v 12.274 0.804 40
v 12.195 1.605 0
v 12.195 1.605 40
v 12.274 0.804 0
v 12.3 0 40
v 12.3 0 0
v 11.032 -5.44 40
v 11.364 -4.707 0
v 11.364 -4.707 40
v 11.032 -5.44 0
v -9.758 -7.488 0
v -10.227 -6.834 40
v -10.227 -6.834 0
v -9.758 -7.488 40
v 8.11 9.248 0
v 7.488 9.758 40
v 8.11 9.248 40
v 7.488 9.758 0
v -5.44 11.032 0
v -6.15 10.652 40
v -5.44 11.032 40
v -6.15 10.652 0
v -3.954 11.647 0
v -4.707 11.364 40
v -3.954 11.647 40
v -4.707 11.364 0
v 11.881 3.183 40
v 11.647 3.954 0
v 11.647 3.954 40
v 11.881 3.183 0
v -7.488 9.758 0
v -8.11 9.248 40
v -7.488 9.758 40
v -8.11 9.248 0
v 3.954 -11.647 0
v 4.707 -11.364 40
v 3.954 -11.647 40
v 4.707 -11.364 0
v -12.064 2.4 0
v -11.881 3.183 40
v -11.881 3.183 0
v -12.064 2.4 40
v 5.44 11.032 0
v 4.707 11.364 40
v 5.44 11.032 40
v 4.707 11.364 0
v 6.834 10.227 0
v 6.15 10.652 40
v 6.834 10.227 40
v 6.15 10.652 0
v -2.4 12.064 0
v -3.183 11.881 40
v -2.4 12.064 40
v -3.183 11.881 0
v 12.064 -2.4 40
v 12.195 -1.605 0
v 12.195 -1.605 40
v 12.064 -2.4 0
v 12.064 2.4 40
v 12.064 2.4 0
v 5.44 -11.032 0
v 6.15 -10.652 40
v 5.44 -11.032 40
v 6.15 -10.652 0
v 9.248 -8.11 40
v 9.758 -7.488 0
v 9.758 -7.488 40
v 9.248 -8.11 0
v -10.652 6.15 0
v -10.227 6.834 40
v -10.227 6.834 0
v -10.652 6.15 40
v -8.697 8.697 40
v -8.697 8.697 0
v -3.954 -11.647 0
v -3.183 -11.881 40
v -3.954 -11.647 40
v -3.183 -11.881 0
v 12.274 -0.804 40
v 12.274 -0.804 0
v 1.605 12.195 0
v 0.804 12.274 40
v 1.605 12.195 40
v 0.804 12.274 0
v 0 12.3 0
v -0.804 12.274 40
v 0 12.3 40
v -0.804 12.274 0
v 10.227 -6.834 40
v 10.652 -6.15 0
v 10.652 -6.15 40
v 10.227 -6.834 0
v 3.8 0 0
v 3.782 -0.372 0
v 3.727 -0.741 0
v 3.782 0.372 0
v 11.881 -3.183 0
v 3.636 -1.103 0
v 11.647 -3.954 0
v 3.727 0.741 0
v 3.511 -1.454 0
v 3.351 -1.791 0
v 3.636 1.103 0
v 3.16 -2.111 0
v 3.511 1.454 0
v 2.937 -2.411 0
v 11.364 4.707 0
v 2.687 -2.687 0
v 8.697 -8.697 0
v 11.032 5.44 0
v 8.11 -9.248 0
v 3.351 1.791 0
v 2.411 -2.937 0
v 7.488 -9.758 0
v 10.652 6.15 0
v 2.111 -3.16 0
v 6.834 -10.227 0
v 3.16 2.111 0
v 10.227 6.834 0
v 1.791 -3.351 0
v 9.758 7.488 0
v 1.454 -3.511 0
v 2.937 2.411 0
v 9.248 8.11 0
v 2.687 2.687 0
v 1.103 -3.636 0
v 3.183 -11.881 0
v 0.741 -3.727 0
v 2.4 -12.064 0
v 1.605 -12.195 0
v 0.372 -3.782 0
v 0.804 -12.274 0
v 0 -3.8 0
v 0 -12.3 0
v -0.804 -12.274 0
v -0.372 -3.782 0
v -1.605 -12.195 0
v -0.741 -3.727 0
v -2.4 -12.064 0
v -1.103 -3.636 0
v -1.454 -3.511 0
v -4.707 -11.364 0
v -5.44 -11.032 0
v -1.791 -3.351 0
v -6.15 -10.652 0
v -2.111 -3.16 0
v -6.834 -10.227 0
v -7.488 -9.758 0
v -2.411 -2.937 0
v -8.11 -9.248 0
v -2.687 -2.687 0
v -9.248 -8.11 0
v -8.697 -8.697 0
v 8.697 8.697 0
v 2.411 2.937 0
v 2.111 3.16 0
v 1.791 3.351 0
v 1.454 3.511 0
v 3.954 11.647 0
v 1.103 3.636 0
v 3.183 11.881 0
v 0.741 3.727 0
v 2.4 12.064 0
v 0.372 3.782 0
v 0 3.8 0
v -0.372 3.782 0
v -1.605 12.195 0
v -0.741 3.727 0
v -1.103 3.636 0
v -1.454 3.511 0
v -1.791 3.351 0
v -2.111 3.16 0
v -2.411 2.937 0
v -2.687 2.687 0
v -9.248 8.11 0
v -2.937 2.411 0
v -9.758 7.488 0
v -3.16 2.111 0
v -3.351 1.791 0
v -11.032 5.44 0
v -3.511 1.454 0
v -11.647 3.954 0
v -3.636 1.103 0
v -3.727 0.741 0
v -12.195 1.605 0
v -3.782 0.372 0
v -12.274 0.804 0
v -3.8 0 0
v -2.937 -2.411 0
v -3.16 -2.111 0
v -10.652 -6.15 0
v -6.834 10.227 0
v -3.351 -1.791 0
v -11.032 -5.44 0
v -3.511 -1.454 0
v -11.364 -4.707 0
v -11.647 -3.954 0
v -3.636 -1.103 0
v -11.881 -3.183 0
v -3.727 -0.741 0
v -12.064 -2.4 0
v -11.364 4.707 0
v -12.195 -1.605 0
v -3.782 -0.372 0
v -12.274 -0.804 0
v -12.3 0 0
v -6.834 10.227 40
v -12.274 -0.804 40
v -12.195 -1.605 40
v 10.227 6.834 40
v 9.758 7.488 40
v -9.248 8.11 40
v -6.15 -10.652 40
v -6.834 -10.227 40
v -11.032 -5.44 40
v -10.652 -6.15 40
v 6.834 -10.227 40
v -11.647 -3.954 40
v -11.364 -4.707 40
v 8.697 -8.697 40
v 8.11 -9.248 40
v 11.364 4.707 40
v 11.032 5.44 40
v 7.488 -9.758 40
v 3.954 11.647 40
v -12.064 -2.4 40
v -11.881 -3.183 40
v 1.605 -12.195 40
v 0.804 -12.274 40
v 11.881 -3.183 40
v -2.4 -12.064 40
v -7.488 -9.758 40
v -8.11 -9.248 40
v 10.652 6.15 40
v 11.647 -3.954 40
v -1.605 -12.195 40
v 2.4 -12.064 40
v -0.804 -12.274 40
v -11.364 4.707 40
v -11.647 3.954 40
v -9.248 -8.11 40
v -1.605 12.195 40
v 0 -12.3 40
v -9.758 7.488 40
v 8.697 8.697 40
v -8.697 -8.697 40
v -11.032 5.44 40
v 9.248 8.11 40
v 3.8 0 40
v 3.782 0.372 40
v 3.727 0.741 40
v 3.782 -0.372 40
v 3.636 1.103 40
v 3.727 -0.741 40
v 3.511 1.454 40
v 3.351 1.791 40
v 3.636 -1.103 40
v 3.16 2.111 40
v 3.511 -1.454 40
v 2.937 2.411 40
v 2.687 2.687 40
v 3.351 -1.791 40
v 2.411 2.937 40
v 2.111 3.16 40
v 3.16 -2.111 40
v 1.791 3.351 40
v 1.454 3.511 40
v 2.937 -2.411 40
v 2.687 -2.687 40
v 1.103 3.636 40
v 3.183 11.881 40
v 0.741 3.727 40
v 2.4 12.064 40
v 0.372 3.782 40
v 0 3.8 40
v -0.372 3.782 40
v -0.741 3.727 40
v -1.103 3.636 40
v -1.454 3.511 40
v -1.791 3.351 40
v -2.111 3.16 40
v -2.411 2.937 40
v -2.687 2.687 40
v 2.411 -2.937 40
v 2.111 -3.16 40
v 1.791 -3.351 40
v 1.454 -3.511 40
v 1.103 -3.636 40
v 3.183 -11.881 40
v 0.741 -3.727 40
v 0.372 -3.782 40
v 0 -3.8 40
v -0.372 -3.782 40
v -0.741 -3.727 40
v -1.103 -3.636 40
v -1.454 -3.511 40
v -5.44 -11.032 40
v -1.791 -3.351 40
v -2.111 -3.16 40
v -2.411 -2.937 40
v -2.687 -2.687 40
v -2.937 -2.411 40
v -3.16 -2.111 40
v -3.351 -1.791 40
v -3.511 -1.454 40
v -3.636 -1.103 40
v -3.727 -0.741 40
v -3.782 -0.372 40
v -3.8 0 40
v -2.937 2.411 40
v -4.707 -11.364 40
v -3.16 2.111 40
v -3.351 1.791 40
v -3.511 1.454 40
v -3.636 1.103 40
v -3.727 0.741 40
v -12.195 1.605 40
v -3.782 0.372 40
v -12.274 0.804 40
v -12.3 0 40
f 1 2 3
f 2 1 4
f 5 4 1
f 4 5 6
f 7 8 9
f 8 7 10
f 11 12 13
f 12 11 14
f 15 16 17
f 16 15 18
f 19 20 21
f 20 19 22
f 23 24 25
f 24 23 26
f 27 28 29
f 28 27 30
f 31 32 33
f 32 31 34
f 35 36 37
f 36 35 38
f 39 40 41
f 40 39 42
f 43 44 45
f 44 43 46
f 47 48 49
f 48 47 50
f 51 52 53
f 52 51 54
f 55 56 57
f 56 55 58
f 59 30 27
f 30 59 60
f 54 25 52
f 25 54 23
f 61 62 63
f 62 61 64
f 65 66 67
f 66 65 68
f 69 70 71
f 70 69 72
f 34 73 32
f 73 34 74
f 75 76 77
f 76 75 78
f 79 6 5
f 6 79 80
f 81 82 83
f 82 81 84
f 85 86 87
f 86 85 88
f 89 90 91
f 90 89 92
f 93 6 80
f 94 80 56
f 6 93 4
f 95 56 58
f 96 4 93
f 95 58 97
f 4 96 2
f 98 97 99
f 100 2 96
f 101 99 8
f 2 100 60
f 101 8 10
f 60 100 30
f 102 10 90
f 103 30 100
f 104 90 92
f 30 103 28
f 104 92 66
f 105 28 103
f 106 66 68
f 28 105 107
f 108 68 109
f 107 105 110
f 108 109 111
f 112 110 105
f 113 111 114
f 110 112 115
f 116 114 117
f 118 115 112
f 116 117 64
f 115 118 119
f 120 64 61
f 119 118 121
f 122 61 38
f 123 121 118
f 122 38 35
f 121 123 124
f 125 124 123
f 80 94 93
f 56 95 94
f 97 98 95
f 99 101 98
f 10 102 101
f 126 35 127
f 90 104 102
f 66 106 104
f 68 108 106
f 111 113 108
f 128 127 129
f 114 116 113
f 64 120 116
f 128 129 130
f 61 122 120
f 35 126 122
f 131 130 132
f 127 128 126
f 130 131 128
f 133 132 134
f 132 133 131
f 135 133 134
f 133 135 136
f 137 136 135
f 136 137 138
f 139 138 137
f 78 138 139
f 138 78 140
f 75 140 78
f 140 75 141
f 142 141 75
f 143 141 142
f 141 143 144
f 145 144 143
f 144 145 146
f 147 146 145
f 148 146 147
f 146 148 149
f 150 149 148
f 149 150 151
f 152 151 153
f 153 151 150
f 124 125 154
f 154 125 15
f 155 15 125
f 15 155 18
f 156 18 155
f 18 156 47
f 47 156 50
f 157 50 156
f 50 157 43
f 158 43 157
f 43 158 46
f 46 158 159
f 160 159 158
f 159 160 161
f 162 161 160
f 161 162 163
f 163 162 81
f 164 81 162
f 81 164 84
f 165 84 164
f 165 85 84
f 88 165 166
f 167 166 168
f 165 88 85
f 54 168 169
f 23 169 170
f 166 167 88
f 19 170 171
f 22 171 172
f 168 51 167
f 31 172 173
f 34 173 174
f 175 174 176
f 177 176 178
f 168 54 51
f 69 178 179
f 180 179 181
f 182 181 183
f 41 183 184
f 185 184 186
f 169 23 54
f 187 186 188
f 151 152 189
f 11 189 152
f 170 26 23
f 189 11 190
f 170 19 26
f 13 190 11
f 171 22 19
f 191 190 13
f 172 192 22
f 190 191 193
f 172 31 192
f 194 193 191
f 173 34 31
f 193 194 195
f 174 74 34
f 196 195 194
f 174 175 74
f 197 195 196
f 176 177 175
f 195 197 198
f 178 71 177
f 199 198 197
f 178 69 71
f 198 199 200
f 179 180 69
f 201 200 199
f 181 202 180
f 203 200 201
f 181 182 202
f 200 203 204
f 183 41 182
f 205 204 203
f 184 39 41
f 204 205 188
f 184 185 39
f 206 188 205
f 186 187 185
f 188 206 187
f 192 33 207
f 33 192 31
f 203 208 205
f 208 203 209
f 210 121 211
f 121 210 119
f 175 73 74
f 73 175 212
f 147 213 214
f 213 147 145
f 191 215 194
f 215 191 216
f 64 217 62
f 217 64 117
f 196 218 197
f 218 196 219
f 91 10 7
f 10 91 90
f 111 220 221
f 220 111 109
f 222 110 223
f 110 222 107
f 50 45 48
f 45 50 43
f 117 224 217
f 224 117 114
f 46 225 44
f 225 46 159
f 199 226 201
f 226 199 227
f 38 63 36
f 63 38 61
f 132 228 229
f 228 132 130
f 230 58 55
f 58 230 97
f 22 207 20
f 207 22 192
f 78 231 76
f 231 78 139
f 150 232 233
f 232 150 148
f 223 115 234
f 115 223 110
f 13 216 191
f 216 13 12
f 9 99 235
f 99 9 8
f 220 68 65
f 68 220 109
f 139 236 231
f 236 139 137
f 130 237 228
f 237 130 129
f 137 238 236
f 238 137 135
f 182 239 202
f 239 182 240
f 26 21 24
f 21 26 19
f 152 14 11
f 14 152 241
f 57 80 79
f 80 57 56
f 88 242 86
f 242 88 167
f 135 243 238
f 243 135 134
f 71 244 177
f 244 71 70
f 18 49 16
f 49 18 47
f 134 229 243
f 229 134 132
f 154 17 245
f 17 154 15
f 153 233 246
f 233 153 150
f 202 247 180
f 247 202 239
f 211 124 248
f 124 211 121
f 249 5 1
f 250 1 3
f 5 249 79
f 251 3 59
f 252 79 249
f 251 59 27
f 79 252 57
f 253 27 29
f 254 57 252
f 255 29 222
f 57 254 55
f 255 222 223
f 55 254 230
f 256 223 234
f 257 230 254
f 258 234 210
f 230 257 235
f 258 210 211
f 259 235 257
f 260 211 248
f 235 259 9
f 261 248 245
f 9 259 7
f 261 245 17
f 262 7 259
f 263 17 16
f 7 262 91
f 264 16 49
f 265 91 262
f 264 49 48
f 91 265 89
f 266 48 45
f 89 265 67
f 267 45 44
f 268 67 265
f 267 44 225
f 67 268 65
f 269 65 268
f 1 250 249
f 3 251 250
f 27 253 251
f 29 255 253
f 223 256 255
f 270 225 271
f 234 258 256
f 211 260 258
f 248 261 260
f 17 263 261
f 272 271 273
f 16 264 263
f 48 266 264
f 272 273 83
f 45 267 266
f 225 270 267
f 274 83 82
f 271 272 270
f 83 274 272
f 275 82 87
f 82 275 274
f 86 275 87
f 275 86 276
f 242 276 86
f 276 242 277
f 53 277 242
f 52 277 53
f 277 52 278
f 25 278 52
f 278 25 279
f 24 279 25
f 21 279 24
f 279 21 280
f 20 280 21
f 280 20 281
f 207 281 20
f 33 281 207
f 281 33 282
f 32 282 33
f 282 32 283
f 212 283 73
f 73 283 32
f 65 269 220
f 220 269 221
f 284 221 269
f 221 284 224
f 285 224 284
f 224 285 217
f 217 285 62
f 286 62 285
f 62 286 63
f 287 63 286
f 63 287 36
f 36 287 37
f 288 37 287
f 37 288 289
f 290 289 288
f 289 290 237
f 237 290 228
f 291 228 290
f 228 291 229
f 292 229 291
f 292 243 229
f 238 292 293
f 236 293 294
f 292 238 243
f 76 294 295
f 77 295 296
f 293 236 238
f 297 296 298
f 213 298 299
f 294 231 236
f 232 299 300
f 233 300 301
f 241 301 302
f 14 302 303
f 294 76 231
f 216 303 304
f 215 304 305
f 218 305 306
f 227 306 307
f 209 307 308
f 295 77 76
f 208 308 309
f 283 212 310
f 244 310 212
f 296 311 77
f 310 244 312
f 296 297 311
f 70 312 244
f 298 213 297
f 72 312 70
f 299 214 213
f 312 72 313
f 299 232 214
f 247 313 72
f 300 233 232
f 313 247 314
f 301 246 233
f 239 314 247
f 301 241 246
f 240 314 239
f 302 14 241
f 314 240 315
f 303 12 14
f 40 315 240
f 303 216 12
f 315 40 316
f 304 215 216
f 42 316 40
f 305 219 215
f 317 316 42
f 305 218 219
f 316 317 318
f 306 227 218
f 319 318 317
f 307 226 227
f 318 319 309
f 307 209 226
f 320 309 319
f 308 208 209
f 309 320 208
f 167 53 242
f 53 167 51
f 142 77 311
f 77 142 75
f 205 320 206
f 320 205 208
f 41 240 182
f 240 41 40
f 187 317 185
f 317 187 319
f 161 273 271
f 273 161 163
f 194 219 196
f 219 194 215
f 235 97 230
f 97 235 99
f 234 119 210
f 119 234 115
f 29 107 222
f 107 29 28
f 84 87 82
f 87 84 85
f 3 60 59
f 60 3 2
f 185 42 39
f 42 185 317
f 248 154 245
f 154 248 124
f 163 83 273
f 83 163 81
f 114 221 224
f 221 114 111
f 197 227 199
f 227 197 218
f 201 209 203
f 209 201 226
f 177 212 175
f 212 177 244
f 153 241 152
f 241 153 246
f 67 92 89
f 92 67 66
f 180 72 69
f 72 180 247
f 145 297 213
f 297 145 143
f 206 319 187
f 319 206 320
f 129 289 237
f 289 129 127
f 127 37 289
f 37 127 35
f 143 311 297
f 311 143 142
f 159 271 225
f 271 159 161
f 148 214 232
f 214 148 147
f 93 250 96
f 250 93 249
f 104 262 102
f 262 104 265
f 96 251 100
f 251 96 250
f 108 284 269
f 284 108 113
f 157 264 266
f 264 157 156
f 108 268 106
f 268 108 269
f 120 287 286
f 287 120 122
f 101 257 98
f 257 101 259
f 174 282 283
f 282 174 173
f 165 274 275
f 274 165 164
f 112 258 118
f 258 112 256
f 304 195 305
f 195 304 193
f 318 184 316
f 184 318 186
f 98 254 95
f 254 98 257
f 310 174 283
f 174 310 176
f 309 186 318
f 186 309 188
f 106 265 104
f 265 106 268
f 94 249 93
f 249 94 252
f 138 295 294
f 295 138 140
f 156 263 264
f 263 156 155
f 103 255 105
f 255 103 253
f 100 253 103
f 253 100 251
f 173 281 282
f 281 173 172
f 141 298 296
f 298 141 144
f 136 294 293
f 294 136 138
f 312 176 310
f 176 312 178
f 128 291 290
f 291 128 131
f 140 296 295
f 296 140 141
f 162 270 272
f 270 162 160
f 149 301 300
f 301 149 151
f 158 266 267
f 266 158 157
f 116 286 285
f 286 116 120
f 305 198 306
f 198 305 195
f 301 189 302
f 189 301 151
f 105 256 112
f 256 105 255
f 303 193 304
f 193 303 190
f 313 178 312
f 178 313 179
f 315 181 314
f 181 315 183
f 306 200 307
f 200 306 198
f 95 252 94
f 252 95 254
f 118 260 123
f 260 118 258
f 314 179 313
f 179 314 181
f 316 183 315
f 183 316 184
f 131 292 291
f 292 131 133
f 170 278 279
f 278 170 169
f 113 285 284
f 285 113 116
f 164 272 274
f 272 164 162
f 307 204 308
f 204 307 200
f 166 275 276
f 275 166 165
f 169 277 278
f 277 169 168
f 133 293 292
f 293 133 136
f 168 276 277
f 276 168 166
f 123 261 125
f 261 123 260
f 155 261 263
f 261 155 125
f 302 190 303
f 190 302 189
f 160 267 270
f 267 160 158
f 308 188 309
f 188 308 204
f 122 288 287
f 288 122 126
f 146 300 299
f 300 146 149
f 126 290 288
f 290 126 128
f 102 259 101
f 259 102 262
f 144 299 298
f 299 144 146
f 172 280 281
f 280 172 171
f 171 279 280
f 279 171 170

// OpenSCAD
// file: common.scad
// Shared parameters for the openprint-build printable parts.
//
// These are NOT Open Tools' files (unpublished as of Oct 2026). They are
// original, parametric parts built around standard off-the-shelf components.
// Values marked VERIFY are best estimates: measure your part and edit here.
//
// Coordinate frame used by the axis parts:
//   X = carriage travel (along the guide rods)
//   Y = front (+) / back (-)
//   Z = up
// Lower rod axis at y=0,z=0; upper rod at y=0,z=rod_spacing.

$fn = 64;

clr        = 0.3;    // general fit clearance (Prusa CORE One, 0.4 nozzle)

// Guide rods + linear bearings
rod_d       = 8;     // steel guide rod
rod_spacing = 30;    // vertical distance between the two rods
lm_d        = 15;    // LM8UU outer diameter
lm_l        = 24;    // LM8UU length
lm_fit      = 0.15;  // press fit allowance on LM8UU bore

// GT2 belt drive
belt_w      = 6;     // GT2 6 mm belt
belt_t      = 1.4;   // belt thickness incl. teeth
belt_pitch  = 2;
pulley_pr   = 6.37;  // pitch radius of a GT2 20T pulley / idler
belt_y      = -18;   // belt centre plane (behind the rods)
belt_z      = rod_spacing / 2;   // pulley axis height

// NEMA17
nema_w      = 42.3;
nema_holes  = 31;    // hole spacing
nema_boss   = 22.5;  // centring boss clearance
m3          = 3.4;   // M3 clearance
m3_tap      = 2.8;   // M3 self-tap into plastic
m5          = 5.3;
m5_tap      = 4.3;
m4          = 4.4;

// HP 63 / 302 / 803 cartridge body (same shell for black + tri-colour)
// VERIFY: measure with calipers, or print cart_fit_gauge.stl first.
cart_w      = 19.0;  // along X (thin side)
cart_d      = 36.5;  // along Y (front-back, contact pad on the back face)
cart_fit    = 0.6;   // total clearance per dimension

// Teardrop: horizontal hole that prints without supports.
// Axis along X; point faces +Z.
module teardrop_x(d, l) {
    // rotate([0,90,0]) maps 2D -X to 3D +Z, so the point goes at 180°.
    rotate([0, 90, 0])
    linear_extrude(height = l, center = true)
        union() {
            circle(d = d);
            rotate(135) square(d / 2);  // 45° roof
        }
}

// Same, axis along Y.
module teardrop_y(d, l) {
    // rotate([90,0,0]) maps 2D +Y to 3D +Z.
    rotate([90, 0, 0])
    linear_extrude(height = l, center = true)
        union() {
            circle(d = d);
            rotate(45) square(d / 2);
        }
}

// ---------------------------------------------------------------------------
// Machine layout (frame coordinates). Origin: inner face of the left end wall,
// back face of the tray, bottom of the base. X right, Y toward the front, Z up.
// The axis parts above are modelled around their own rod; place them with
// rod_y / rod_z below.

L        = 525;      // inner length between end walls (outer = L + 2*wall)
wall     = 6;        // end wall / tray wall thickness
base_t   = 4;        // tray floor
depth    = 130;      // tray depth (Y)
height   = 105;      // tray height (Z), excluding roll arms

rod_y    = 70;       // both rods in one vertical plane
rod_z    = 50;       // lower rod; upper rod at rod_z + rod_spacing
paper_z  = 37;       // paper plane (top of platen ribs, the nip)
paper_x0 = 94;       // paper zone, 297 mm (A4 width / A3 roll)
paper_x1 = paper_x0 + 297;

pulley_x = 25;       // carriage motor pulley (left)
idler_x  = 445;      // belt idler (right)

feed_y   = 38;       // feed roller shaft (driven, top of the nip)
feed_r   = 12.3;     // TPU sleeve radius, 0.3 interference on the pinch
feed_z   = paper_z + 12;
pinch_z  = paper_z - 11;    // 608 bearings (r = 11) roll on the pinch shaft

pillar_x = [47, 425];       // inboard shaft supports (left edge of each, 8 wide)

roll_y   = 50;       // roll spindle axis
roll_z   = 155;
b608_d   = 22;
b608_w   = 7;

split_x  = [175, 350];      // tray section joints
// main file
// Feed roller sleeve (print 4, TPU 95A). Friction fit on the 8 mm feed shaft;
// the sleeve's compliance supplies the pinch force against the 608 bearings
// below (centre distance = 23, sleeve r = feed_r = 12.3 + bearing r 11).
//
// Sleeve centres in X: 115, 190, 278, 352 (two per side of the A4 centreline).

include <common.scad>

len = 40;

difference() {
    cylinder(r = feed_r, h = len, $fn = 96);
    translate([0, 0, -1]) cylinder(d = rod_d - 0.4, h = len + 2);
}
